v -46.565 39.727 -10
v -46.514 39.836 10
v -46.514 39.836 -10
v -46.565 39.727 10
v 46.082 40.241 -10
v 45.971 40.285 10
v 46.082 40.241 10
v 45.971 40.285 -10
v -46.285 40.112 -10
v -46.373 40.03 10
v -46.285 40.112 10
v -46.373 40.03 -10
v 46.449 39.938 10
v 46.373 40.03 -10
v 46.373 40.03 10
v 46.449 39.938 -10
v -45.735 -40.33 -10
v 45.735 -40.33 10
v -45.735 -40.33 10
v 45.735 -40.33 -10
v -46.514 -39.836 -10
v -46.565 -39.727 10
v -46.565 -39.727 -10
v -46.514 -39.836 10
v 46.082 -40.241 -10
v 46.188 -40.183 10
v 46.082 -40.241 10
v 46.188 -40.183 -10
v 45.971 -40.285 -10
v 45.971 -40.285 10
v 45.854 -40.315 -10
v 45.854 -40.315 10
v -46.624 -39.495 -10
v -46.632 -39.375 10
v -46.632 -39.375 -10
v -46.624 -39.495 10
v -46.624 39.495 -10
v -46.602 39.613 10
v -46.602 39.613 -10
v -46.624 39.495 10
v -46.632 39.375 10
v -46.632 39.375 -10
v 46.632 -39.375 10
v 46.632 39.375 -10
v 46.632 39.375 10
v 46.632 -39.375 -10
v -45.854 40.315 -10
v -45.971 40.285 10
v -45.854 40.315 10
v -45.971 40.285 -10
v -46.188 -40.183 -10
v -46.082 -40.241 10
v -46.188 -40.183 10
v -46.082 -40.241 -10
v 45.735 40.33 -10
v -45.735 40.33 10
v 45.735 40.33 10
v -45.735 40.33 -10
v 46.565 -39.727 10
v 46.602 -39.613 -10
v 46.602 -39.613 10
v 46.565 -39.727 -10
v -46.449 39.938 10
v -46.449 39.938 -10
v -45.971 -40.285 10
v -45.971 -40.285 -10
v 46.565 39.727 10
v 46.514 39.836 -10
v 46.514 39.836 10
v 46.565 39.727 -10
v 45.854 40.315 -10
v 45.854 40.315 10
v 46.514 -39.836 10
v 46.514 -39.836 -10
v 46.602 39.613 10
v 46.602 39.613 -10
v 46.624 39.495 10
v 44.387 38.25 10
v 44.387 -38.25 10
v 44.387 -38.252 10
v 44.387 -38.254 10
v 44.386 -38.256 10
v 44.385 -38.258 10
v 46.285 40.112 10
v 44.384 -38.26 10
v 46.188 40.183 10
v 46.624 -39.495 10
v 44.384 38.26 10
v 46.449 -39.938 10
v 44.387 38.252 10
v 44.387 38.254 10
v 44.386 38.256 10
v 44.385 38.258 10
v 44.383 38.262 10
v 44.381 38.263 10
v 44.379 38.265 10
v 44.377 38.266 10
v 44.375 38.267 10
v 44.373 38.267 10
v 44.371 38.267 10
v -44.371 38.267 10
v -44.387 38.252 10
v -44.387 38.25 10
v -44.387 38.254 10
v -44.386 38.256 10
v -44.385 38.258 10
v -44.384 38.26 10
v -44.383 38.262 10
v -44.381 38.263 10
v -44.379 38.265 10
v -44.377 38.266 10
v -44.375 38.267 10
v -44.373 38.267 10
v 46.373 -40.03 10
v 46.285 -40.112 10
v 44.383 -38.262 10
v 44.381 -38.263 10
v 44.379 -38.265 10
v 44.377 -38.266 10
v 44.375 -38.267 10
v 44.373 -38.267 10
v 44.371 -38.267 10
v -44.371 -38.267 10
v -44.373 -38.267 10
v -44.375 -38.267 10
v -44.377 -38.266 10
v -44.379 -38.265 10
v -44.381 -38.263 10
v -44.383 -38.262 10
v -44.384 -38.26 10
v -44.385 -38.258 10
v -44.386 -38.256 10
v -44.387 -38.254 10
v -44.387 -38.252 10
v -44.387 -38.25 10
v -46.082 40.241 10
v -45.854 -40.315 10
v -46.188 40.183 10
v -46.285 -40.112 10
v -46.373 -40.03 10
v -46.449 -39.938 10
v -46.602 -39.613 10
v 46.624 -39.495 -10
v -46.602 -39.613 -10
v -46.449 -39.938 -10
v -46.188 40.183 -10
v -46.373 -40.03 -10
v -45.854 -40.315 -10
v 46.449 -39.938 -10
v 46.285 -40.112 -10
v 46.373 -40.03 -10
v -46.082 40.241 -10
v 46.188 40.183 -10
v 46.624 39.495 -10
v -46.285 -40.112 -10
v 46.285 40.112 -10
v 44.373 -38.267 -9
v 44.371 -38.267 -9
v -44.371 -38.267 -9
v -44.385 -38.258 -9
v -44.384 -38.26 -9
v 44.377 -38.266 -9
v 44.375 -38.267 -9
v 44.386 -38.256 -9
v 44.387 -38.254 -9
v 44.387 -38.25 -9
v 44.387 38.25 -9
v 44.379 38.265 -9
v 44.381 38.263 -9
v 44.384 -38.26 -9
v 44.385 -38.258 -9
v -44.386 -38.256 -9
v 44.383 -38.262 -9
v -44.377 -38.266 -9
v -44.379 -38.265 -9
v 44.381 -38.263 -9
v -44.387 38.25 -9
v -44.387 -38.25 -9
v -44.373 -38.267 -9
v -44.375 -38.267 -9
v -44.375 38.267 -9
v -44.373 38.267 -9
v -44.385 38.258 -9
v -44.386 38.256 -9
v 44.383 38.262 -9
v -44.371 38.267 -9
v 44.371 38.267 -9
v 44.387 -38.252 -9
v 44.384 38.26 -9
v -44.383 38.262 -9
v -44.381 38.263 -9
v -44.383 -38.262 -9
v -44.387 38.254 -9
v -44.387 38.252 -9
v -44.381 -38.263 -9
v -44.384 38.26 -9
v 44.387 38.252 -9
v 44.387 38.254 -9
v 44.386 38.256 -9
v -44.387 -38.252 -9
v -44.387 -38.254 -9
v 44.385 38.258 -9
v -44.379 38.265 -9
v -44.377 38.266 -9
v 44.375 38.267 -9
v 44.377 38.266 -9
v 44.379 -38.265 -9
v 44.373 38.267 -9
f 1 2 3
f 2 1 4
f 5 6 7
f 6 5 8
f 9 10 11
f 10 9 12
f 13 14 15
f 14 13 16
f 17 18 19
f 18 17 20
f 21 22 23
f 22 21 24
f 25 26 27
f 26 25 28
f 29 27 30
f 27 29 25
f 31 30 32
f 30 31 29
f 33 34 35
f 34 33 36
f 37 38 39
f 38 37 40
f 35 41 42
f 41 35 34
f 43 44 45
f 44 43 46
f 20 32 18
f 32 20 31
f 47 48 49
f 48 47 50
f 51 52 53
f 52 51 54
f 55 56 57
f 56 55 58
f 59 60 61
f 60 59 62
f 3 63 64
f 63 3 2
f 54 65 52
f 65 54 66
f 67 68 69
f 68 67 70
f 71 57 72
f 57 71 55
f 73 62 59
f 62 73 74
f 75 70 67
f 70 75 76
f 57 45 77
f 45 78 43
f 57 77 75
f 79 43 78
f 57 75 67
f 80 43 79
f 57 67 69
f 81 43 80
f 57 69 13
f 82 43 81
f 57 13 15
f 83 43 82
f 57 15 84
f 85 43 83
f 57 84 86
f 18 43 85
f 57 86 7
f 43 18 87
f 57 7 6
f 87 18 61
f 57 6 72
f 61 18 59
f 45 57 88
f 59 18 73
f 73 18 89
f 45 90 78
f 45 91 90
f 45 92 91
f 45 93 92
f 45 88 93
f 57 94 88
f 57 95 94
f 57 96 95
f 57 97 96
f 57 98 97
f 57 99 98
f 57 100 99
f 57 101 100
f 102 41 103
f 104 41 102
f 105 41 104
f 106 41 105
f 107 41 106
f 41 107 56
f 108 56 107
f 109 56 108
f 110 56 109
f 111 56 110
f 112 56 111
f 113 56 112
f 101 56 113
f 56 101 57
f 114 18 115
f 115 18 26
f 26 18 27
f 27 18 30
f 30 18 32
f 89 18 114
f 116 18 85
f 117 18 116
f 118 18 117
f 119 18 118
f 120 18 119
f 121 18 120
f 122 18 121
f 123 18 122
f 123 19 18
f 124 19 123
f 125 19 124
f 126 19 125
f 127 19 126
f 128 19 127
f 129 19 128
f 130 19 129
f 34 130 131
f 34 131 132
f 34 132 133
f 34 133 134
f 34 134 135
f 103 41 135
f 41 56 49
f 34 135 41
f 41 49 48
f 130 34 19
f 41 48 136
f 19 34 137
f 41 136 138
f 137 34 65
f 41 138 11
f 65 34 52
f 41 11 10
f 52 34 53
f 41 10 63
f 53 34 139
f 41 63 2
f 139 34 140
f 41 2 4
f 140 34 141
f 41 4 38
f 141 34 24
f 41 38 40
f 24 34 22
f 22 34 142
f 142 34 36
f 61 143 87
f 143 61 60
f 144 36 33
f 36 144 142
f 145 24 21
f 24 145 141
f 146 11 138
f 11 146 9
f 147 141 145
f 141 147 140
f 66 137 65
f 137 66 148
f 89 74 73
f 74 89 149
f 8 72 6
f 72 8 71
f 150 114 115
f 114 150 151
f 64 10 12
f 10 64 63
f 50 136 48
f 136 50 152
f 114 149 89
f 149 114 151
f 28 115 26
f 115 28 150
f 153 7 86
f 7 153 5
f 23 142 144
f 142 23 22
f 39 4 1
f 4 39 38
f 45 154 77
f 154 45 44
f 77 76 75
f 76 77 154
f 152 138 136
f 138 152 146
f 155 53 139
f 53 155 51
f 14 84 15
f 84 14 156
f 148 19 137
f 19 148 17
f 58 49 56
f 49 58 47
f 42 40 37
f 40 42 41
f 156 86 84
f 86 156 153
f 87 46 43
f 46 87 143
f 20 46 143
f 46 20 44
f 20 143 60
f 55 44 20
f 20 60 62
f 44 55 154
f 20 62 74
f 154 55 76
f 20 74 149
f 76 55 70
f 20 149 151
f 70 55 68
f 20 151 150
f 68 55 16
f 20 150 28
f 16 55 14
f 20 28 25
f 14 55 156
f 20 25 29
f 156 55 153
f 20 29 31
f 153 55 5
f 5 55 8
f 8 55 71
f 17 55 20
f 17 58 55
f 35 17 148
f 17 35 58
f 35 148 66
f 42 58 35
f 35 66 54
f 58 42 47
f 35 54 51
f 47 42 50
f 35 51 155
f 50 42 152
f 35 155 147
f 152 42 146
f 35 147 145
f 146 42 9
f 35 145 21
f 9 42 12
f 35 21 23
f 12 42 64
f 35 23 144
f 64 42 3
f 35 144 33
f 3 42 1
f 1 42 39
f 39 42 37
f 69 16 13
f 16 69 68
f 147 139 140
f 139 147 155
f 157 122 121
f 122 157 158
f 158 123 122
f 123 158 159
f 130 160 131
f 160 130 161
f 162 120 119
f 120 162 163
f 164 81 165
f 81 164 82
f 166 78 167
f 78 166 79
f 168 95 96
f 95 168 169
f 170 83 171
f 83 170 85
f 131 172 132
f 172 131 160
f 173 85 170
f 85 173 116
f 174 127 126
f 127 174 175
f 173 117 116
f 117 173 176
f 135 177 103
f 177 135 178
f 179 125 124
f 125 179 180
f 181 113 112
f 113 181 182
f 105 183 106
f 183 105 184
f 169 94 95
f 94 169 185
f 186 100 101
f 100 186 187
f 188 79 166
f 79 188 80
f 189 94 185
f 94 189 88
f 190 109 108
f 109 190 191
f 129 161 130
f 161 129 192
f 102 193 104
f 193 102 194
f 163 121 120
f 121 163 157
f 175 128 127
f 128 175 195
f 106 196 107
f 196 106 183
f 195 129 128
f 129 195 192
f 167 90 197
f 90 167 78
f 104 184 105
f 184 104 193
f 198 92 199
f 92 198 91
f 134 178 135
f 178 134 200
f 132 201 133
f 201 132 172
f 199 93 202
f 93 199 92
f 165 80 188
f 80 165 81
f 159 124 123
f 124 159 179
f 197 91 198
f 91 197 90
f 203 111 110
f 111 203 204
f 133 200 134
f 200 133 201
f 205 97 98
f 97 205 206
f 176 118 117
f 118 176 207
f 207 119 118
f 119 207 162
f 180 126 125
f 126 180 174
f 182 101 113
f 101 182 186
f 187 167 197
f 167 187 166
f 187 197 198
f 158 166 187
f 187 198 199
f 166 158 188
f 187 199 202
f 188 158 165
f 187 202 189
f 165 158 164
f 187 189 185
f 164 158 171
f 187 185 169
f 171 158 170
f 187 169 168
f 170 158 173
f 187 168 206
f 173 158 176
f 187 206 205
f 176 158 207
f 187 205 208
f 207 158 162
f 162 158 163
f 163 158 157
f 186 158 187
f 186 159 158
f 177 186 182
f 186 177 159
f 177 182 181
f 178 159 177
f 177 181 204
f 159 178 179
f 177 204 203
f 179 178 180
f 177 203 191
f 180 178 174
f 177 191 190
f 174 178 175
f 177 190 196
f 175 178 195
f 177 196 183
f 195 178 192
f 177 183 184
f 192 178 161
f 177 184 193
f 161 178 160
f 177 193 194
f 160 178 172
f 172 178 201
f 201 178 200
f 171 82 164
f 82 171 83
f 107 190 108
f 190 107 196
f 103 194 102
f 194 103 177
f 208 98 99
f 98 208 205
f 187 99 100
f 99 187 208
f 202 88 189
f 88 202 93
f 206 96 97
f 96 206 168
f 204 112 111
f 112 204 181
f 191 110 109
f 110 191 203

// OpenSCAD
// gerassic.scad
// por @montoyamoraga
// para @piruetasxyz

$fn=50;

// ancho en mm
ANCHO = 87.00;

// largo en mm
LARGO = 75.0;

// radio de esquinas en mm
RADIO_ESQUINAS = 3;

// definir tolerancia en porcentaje
TOLERANCIA = 0.01;

// definir tolerancia afuera en porcentaje
TOLERANCIA_AFUERA = 0.05;

// definir tolerancia adentro en porcentaje
TOLERANCIA_ADENTRO = 0.02;

// definir radio esquina en porcentaje
RADIO_ESQUINA = 0.01;

// https://en.wikibooks.org/wiki/OpenSCAD_User_Manual/Transformations

module gerassic(altura) {

  difference() {

    // cubo exterior
    linear_extrude(
    height = altura,
    center = true,
    convexity = 1) {
      
      // hull of 2D figures
      color("magenta", 1.0)
      hull() {
        translate([
        -(1+ TOLERANCIA_AFUERA) * ANCHO/2,
        -(1+ TOLERANCIA_AFUERA) * LARGO/2
        ])
        circle(r = RADIO_ESQUINA * (1.1) * ANCHO);

        translate([
        -(1+ TOLERANCIA_AFUERA) * ANCHO/2,
        +(1 + TOLERANCIA_AFUERA) * LARGO/2])
        circle(r = RADIO_ESQUINA * (1.1) * ANCHO);

        translate([
        +(1+ TOLERANCIA_AFUERA)*ANCHO/2,
        -(1+ TOLERANCIA_AFUERA)*LARGO/2
        ])
        circle(r = RADIO_ESQUINA * (1.1) * ANCHO);

        translate([
        +(1+ TOLERANCIA_AFUERA)*ANCHO/2,
        +(1+ TOLERANCIA_AFUERA)*LARGO/2
        ])
        circle(r = RADIO_ESQUINA * (1.1) * ANCHO);
      }

    }

    // cubo interior que crea el hueco
    color("magenta", 3.0)
    translate([0, 0, 1.0])
    linear_extrude(
    height = altura,
    center = true,
    convexity = 1) {
      
      // hull of 2D figures

      
      hull() {
        translate([
        -(1+ TOLERANCIA_ADENTRO) * ANCHO/2,
        -(1+ TOLERANCIA_ADENTRO) * LARGO/2
        ])
        circle(r = RADIO_ESQUINA * ANCHO * TOLERANCIA_ADENTRO);

        translate([
        -(1+ TOLERANCIA_ADENTRO) * ANCHO/2,
        +(1 + TOLERANCIA_ADENTRO) * LARGO/2])
        circle(r = RADIO_ESQUINA*ANCHO * TOLERANCIA_ADENTRO);

        translate([
        +(1+ TOLERANCIA_ADENTRO)*ANCHO/2,
        -(1+ TOLERANCIA_ADENTRO)*LARGO/2
        ])
        circle(r = RADIO_ESQUINA*ANCHO * TOLERANCIA_ADENTRO);

        translate([
        +(1+ TOLERANCIA_ADENTRO)*ANCHO/2,
        +(1+ TOLERANCIA_ADENTRO)*LARGO/2
        ])
        circle(r = RADIO_ESQUINA*ANCHO * TOLERANCIA_ADENTRO);
      }
    }
  }
}


// usar modulo con cierta altura
gerassic(20);
